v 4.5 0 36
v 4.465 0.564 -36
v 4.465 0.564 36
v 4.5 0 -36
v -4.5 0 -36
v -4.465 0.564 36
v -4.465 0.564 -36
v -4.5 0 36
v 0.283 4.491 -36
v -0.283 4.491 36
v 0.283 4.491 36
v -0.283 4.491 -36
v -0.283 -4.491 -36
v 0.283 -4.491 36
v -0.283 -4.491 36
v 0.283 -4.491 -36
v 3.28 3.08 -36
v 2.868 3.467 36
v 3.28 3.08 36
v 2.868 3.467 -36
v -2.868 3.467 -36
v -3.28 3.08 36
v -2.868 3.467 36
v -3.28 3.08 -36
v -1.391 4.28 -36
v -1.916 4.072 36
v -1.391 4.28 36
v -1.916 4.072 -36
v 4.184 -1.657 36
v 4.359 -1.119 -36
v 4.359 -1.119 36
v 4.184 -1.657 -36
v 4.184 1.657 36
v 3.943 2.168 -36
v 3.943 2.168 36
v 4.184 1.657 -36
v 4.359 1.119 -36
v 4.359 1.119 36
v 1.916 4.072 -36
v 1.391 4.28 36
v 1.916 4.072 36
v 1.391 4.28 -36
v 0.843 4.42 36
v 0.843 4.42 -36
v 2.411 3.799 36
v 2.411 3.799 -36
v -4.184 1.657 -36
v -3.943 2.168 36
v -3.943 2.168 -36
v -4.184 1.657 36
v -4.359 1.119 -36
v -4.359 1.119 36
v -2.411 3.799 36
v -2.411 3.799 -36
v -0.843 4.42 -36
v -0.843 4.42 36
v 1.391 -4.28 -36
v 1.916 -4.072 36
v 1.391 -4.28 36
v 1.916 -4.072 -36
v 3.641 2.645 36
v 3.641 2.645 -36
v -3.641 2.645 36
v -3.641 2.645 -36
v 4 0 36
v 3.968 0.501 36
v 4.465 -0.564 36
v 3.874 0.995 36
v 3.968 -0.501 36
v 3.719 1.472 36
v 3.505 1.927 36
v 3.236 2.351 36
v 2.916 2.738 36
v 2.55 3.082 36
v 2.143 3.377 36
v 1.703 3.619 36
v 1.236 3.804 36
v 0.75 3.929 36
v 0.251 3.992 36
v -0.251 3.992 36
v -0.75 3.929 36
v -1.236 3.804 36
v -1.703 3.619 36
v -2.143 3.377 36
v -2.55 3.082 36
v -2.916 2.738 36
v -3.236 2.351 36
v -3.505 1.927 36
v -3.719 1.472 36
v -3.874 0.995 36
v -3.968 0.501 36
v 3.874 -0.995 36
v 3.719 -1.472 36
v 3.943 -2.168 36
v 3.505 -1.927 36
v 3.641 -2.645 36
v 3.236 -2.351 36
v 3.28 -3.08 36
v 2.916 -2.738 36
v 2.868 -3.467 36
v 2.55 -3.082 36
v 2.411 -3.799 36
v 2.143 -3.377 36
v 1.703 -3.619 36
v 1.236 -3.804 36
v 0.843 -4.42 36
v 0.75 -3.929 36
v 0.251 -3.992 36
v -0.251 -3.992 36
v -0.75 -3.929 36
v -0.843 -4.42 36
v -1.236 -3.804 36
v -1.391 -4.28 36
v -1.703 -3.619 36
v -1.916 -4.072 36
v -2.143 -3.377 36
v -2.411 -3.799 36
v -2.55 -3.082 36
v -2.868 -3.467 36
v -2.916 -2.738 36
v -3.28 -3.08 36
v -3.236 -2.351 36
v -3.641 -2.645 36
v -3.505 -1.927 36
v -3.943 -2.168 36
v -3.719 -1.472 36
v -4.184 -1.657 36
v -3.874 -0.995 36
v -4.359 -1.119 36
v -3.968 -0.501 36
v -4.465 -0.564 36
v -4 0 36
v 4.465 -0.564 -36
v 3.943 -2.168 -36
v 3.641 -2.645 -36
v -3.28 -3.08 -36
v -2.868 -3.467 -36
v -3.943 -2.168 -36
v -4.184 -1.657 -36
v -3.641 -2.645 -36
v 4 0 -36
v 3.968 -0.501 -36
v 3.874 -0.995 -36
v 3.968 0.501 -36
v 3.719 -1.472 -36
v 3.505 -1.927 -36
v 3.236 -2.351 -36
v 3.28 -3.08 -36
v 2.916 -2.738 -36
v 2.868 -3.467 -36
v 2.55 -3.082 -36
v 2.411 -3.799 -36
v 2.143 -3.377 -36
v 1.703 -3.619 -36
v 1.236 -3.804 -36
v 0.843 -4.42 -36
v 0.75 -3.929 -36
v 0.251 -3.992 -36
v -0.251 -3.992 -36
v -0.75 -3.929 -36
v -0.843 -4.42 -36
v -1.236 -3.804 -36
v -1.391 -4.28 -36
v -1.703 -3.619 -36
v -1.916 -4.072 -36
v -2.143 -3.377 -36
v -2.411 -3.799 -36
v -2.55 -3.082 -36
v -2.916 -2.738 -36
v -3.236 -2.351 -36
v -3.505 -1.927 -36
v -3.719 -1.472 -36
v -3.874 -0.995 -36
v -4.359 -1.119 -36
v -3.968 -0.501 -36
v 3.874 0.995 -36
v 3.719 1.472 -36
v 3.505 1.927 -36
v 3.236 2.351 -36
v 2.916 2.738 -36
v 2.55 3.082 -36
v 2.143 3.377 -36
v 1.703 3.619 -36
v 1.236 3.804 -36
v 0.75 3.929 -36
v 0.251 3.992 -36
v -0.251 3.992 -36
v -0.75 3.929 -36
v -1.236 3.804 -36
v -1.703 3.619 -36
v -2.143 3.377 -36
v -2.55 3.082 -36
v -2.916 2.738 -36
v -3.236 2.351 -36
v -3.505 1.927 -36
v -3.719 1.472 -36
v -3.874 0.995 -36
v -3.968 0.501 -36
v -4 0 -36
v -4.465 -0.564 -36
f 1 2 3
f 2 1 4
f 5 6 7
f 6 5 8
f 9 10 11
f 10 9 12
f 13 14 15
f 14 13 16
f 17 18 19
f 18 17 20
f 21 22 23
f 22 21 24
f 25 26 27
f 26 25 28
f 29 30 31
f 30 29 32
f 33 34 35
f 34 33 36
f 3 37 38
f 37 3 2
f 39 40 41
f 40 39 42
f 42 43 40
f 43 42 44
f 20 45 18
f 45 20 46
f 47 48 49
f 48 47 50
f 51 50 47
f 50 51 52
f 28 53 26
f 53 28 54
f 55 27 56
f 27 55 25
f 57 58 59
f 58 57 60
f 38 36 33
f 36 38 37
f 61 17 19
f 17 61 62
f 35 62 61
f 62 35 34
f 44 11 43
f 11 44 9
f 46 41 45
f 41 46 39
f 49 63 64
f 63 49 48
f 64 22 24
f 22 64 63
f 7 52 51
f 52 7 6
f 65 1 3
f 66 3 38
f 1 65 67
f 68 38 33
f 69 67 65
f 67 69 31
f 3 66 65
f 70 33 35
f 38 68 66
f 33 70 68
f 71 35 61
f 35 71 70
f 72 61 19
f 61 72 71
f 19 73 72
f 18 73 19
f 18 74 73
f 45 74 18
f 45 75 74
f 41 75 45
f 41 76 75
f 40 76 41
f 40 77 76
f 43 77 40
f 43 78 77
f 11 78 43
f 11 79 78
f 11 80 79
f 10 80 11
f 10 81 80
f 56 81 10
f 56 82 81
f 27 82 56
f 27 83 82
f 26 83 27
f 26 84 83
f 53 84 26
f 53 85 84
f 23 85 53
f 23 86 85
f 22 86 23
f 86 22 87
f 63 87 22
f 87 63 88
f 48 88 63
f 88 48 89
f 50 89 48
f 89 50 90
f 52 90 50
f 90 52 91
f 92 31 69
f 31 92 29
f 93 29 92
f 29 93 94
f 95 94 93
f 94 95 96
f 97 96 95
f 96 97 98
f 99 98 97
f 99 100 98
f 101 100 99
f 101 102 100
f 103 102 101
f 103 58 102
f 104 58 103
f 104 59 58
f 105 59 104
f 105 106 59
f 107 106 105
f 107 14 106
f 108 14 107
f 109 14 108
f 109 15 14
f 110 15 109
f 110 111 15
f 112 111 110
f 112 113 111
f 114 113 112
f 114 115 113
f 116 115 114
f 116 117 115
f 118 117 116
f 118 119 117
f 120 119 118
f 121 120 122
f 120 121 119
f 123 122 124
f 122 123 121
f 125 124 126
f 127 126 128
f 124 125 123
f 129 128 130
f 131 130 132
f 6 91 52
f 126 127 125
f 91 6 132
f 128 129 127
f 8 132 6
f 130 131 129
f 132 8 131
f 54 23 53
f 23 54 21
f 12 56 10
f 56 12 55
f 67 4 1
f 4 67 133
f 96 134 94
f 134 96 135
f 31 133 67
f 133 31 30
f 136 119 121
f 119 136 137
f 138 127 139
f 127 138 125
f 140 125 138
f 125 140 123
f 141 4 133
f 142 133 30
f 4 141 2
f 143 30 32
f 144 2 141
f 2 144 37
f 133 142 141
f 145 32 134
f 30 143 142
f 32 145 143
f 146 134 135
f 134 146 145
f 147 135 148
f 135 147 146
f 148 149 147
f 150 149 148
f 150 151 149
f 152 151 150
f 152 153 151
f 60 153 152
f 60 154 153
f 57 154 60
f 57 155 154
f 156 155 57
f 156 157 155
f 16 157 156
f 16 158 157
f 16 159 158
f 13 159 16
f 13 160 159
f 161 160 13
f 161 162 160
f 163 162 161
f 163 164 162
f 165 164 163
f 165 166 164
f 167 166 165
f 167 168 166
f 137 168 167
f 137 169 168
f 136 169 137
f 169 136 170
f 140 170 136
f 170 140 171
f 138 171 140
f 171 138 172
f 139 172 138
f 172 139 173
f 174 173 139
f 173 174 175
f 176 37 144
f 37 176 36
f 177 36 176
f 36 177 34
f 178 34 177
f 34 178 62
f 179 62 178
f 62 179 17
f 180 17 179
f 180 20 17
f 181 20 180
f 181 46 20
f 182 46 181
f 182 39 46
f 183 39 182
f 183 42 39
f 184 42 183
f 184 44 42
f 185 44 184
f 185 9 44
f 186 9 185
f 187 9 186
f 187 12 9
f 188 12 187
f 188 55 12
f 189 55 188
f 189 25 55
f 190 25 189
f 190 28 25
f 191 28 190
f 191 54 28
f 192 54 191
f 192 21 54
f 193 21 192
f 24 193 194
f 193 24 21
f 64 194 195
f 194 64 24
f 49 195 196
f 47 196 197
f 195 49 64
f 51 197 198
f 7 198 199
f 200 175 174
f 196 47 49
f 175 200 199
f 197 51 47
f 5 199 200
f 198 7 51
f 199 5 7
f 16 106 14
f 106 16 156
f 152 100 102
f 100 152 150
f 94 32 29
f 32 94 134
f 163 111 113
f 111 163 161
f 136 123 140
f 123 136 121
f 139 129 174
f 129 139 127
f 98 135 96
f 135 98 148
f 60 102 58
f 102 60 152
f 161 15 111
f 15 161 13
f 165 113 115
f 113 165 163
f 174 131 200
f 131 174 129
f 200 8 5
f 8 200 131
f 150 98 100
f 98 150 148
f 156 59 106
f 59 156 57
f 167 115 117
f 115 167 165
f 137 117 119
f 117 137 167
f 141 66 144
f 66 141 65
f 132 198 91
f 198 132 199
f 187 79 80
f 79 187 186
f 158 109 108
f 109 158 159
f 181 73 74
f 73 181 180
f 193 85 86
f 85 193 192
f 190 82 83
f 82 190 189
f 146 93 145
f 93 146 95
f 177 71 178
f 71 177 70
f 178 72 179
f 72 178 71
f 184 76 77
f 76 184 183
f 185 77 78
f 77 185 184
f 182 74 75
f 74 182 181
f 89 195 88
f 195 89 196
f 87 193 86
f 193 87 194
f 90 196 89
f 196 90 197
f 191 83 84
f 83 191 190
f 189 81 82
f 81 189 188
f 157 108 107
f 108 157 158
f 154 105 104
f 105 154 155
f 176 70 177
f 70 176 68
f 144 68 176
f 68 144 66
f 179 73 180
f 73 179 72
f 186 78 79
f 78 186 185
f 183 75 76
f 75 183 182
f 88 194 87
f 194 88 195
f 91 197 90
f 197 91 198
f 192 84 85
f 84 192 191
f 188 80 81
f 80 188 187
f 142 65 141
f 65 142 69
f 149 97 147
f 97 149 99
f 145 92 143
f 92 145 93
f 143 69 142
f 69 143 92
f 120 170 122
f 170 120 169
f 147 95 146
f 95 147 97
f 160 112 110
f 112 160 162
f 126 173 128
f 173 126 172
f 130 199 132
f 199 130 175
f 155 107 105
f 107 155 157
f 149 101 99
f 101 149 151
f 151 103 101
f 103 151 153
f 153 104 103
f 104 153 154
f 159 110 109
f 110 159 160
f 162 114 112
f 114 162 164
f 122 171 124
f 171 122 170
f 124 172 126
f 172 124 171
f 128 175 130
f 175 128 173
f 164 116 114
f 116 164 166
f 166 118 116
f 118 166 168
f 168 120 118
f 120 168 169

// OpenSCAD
$fn = 50;


difference() {
	union() {
		translate(v = [0, 0, -36.0000000000]) {
			cylinder(h = 72, r = 4.5000000000);
		}
	}
	union() {
		translate(v = [0, 0, -100.0000000000]) {
			cylinder(h = 200, r = 4);
		}
	}
}
